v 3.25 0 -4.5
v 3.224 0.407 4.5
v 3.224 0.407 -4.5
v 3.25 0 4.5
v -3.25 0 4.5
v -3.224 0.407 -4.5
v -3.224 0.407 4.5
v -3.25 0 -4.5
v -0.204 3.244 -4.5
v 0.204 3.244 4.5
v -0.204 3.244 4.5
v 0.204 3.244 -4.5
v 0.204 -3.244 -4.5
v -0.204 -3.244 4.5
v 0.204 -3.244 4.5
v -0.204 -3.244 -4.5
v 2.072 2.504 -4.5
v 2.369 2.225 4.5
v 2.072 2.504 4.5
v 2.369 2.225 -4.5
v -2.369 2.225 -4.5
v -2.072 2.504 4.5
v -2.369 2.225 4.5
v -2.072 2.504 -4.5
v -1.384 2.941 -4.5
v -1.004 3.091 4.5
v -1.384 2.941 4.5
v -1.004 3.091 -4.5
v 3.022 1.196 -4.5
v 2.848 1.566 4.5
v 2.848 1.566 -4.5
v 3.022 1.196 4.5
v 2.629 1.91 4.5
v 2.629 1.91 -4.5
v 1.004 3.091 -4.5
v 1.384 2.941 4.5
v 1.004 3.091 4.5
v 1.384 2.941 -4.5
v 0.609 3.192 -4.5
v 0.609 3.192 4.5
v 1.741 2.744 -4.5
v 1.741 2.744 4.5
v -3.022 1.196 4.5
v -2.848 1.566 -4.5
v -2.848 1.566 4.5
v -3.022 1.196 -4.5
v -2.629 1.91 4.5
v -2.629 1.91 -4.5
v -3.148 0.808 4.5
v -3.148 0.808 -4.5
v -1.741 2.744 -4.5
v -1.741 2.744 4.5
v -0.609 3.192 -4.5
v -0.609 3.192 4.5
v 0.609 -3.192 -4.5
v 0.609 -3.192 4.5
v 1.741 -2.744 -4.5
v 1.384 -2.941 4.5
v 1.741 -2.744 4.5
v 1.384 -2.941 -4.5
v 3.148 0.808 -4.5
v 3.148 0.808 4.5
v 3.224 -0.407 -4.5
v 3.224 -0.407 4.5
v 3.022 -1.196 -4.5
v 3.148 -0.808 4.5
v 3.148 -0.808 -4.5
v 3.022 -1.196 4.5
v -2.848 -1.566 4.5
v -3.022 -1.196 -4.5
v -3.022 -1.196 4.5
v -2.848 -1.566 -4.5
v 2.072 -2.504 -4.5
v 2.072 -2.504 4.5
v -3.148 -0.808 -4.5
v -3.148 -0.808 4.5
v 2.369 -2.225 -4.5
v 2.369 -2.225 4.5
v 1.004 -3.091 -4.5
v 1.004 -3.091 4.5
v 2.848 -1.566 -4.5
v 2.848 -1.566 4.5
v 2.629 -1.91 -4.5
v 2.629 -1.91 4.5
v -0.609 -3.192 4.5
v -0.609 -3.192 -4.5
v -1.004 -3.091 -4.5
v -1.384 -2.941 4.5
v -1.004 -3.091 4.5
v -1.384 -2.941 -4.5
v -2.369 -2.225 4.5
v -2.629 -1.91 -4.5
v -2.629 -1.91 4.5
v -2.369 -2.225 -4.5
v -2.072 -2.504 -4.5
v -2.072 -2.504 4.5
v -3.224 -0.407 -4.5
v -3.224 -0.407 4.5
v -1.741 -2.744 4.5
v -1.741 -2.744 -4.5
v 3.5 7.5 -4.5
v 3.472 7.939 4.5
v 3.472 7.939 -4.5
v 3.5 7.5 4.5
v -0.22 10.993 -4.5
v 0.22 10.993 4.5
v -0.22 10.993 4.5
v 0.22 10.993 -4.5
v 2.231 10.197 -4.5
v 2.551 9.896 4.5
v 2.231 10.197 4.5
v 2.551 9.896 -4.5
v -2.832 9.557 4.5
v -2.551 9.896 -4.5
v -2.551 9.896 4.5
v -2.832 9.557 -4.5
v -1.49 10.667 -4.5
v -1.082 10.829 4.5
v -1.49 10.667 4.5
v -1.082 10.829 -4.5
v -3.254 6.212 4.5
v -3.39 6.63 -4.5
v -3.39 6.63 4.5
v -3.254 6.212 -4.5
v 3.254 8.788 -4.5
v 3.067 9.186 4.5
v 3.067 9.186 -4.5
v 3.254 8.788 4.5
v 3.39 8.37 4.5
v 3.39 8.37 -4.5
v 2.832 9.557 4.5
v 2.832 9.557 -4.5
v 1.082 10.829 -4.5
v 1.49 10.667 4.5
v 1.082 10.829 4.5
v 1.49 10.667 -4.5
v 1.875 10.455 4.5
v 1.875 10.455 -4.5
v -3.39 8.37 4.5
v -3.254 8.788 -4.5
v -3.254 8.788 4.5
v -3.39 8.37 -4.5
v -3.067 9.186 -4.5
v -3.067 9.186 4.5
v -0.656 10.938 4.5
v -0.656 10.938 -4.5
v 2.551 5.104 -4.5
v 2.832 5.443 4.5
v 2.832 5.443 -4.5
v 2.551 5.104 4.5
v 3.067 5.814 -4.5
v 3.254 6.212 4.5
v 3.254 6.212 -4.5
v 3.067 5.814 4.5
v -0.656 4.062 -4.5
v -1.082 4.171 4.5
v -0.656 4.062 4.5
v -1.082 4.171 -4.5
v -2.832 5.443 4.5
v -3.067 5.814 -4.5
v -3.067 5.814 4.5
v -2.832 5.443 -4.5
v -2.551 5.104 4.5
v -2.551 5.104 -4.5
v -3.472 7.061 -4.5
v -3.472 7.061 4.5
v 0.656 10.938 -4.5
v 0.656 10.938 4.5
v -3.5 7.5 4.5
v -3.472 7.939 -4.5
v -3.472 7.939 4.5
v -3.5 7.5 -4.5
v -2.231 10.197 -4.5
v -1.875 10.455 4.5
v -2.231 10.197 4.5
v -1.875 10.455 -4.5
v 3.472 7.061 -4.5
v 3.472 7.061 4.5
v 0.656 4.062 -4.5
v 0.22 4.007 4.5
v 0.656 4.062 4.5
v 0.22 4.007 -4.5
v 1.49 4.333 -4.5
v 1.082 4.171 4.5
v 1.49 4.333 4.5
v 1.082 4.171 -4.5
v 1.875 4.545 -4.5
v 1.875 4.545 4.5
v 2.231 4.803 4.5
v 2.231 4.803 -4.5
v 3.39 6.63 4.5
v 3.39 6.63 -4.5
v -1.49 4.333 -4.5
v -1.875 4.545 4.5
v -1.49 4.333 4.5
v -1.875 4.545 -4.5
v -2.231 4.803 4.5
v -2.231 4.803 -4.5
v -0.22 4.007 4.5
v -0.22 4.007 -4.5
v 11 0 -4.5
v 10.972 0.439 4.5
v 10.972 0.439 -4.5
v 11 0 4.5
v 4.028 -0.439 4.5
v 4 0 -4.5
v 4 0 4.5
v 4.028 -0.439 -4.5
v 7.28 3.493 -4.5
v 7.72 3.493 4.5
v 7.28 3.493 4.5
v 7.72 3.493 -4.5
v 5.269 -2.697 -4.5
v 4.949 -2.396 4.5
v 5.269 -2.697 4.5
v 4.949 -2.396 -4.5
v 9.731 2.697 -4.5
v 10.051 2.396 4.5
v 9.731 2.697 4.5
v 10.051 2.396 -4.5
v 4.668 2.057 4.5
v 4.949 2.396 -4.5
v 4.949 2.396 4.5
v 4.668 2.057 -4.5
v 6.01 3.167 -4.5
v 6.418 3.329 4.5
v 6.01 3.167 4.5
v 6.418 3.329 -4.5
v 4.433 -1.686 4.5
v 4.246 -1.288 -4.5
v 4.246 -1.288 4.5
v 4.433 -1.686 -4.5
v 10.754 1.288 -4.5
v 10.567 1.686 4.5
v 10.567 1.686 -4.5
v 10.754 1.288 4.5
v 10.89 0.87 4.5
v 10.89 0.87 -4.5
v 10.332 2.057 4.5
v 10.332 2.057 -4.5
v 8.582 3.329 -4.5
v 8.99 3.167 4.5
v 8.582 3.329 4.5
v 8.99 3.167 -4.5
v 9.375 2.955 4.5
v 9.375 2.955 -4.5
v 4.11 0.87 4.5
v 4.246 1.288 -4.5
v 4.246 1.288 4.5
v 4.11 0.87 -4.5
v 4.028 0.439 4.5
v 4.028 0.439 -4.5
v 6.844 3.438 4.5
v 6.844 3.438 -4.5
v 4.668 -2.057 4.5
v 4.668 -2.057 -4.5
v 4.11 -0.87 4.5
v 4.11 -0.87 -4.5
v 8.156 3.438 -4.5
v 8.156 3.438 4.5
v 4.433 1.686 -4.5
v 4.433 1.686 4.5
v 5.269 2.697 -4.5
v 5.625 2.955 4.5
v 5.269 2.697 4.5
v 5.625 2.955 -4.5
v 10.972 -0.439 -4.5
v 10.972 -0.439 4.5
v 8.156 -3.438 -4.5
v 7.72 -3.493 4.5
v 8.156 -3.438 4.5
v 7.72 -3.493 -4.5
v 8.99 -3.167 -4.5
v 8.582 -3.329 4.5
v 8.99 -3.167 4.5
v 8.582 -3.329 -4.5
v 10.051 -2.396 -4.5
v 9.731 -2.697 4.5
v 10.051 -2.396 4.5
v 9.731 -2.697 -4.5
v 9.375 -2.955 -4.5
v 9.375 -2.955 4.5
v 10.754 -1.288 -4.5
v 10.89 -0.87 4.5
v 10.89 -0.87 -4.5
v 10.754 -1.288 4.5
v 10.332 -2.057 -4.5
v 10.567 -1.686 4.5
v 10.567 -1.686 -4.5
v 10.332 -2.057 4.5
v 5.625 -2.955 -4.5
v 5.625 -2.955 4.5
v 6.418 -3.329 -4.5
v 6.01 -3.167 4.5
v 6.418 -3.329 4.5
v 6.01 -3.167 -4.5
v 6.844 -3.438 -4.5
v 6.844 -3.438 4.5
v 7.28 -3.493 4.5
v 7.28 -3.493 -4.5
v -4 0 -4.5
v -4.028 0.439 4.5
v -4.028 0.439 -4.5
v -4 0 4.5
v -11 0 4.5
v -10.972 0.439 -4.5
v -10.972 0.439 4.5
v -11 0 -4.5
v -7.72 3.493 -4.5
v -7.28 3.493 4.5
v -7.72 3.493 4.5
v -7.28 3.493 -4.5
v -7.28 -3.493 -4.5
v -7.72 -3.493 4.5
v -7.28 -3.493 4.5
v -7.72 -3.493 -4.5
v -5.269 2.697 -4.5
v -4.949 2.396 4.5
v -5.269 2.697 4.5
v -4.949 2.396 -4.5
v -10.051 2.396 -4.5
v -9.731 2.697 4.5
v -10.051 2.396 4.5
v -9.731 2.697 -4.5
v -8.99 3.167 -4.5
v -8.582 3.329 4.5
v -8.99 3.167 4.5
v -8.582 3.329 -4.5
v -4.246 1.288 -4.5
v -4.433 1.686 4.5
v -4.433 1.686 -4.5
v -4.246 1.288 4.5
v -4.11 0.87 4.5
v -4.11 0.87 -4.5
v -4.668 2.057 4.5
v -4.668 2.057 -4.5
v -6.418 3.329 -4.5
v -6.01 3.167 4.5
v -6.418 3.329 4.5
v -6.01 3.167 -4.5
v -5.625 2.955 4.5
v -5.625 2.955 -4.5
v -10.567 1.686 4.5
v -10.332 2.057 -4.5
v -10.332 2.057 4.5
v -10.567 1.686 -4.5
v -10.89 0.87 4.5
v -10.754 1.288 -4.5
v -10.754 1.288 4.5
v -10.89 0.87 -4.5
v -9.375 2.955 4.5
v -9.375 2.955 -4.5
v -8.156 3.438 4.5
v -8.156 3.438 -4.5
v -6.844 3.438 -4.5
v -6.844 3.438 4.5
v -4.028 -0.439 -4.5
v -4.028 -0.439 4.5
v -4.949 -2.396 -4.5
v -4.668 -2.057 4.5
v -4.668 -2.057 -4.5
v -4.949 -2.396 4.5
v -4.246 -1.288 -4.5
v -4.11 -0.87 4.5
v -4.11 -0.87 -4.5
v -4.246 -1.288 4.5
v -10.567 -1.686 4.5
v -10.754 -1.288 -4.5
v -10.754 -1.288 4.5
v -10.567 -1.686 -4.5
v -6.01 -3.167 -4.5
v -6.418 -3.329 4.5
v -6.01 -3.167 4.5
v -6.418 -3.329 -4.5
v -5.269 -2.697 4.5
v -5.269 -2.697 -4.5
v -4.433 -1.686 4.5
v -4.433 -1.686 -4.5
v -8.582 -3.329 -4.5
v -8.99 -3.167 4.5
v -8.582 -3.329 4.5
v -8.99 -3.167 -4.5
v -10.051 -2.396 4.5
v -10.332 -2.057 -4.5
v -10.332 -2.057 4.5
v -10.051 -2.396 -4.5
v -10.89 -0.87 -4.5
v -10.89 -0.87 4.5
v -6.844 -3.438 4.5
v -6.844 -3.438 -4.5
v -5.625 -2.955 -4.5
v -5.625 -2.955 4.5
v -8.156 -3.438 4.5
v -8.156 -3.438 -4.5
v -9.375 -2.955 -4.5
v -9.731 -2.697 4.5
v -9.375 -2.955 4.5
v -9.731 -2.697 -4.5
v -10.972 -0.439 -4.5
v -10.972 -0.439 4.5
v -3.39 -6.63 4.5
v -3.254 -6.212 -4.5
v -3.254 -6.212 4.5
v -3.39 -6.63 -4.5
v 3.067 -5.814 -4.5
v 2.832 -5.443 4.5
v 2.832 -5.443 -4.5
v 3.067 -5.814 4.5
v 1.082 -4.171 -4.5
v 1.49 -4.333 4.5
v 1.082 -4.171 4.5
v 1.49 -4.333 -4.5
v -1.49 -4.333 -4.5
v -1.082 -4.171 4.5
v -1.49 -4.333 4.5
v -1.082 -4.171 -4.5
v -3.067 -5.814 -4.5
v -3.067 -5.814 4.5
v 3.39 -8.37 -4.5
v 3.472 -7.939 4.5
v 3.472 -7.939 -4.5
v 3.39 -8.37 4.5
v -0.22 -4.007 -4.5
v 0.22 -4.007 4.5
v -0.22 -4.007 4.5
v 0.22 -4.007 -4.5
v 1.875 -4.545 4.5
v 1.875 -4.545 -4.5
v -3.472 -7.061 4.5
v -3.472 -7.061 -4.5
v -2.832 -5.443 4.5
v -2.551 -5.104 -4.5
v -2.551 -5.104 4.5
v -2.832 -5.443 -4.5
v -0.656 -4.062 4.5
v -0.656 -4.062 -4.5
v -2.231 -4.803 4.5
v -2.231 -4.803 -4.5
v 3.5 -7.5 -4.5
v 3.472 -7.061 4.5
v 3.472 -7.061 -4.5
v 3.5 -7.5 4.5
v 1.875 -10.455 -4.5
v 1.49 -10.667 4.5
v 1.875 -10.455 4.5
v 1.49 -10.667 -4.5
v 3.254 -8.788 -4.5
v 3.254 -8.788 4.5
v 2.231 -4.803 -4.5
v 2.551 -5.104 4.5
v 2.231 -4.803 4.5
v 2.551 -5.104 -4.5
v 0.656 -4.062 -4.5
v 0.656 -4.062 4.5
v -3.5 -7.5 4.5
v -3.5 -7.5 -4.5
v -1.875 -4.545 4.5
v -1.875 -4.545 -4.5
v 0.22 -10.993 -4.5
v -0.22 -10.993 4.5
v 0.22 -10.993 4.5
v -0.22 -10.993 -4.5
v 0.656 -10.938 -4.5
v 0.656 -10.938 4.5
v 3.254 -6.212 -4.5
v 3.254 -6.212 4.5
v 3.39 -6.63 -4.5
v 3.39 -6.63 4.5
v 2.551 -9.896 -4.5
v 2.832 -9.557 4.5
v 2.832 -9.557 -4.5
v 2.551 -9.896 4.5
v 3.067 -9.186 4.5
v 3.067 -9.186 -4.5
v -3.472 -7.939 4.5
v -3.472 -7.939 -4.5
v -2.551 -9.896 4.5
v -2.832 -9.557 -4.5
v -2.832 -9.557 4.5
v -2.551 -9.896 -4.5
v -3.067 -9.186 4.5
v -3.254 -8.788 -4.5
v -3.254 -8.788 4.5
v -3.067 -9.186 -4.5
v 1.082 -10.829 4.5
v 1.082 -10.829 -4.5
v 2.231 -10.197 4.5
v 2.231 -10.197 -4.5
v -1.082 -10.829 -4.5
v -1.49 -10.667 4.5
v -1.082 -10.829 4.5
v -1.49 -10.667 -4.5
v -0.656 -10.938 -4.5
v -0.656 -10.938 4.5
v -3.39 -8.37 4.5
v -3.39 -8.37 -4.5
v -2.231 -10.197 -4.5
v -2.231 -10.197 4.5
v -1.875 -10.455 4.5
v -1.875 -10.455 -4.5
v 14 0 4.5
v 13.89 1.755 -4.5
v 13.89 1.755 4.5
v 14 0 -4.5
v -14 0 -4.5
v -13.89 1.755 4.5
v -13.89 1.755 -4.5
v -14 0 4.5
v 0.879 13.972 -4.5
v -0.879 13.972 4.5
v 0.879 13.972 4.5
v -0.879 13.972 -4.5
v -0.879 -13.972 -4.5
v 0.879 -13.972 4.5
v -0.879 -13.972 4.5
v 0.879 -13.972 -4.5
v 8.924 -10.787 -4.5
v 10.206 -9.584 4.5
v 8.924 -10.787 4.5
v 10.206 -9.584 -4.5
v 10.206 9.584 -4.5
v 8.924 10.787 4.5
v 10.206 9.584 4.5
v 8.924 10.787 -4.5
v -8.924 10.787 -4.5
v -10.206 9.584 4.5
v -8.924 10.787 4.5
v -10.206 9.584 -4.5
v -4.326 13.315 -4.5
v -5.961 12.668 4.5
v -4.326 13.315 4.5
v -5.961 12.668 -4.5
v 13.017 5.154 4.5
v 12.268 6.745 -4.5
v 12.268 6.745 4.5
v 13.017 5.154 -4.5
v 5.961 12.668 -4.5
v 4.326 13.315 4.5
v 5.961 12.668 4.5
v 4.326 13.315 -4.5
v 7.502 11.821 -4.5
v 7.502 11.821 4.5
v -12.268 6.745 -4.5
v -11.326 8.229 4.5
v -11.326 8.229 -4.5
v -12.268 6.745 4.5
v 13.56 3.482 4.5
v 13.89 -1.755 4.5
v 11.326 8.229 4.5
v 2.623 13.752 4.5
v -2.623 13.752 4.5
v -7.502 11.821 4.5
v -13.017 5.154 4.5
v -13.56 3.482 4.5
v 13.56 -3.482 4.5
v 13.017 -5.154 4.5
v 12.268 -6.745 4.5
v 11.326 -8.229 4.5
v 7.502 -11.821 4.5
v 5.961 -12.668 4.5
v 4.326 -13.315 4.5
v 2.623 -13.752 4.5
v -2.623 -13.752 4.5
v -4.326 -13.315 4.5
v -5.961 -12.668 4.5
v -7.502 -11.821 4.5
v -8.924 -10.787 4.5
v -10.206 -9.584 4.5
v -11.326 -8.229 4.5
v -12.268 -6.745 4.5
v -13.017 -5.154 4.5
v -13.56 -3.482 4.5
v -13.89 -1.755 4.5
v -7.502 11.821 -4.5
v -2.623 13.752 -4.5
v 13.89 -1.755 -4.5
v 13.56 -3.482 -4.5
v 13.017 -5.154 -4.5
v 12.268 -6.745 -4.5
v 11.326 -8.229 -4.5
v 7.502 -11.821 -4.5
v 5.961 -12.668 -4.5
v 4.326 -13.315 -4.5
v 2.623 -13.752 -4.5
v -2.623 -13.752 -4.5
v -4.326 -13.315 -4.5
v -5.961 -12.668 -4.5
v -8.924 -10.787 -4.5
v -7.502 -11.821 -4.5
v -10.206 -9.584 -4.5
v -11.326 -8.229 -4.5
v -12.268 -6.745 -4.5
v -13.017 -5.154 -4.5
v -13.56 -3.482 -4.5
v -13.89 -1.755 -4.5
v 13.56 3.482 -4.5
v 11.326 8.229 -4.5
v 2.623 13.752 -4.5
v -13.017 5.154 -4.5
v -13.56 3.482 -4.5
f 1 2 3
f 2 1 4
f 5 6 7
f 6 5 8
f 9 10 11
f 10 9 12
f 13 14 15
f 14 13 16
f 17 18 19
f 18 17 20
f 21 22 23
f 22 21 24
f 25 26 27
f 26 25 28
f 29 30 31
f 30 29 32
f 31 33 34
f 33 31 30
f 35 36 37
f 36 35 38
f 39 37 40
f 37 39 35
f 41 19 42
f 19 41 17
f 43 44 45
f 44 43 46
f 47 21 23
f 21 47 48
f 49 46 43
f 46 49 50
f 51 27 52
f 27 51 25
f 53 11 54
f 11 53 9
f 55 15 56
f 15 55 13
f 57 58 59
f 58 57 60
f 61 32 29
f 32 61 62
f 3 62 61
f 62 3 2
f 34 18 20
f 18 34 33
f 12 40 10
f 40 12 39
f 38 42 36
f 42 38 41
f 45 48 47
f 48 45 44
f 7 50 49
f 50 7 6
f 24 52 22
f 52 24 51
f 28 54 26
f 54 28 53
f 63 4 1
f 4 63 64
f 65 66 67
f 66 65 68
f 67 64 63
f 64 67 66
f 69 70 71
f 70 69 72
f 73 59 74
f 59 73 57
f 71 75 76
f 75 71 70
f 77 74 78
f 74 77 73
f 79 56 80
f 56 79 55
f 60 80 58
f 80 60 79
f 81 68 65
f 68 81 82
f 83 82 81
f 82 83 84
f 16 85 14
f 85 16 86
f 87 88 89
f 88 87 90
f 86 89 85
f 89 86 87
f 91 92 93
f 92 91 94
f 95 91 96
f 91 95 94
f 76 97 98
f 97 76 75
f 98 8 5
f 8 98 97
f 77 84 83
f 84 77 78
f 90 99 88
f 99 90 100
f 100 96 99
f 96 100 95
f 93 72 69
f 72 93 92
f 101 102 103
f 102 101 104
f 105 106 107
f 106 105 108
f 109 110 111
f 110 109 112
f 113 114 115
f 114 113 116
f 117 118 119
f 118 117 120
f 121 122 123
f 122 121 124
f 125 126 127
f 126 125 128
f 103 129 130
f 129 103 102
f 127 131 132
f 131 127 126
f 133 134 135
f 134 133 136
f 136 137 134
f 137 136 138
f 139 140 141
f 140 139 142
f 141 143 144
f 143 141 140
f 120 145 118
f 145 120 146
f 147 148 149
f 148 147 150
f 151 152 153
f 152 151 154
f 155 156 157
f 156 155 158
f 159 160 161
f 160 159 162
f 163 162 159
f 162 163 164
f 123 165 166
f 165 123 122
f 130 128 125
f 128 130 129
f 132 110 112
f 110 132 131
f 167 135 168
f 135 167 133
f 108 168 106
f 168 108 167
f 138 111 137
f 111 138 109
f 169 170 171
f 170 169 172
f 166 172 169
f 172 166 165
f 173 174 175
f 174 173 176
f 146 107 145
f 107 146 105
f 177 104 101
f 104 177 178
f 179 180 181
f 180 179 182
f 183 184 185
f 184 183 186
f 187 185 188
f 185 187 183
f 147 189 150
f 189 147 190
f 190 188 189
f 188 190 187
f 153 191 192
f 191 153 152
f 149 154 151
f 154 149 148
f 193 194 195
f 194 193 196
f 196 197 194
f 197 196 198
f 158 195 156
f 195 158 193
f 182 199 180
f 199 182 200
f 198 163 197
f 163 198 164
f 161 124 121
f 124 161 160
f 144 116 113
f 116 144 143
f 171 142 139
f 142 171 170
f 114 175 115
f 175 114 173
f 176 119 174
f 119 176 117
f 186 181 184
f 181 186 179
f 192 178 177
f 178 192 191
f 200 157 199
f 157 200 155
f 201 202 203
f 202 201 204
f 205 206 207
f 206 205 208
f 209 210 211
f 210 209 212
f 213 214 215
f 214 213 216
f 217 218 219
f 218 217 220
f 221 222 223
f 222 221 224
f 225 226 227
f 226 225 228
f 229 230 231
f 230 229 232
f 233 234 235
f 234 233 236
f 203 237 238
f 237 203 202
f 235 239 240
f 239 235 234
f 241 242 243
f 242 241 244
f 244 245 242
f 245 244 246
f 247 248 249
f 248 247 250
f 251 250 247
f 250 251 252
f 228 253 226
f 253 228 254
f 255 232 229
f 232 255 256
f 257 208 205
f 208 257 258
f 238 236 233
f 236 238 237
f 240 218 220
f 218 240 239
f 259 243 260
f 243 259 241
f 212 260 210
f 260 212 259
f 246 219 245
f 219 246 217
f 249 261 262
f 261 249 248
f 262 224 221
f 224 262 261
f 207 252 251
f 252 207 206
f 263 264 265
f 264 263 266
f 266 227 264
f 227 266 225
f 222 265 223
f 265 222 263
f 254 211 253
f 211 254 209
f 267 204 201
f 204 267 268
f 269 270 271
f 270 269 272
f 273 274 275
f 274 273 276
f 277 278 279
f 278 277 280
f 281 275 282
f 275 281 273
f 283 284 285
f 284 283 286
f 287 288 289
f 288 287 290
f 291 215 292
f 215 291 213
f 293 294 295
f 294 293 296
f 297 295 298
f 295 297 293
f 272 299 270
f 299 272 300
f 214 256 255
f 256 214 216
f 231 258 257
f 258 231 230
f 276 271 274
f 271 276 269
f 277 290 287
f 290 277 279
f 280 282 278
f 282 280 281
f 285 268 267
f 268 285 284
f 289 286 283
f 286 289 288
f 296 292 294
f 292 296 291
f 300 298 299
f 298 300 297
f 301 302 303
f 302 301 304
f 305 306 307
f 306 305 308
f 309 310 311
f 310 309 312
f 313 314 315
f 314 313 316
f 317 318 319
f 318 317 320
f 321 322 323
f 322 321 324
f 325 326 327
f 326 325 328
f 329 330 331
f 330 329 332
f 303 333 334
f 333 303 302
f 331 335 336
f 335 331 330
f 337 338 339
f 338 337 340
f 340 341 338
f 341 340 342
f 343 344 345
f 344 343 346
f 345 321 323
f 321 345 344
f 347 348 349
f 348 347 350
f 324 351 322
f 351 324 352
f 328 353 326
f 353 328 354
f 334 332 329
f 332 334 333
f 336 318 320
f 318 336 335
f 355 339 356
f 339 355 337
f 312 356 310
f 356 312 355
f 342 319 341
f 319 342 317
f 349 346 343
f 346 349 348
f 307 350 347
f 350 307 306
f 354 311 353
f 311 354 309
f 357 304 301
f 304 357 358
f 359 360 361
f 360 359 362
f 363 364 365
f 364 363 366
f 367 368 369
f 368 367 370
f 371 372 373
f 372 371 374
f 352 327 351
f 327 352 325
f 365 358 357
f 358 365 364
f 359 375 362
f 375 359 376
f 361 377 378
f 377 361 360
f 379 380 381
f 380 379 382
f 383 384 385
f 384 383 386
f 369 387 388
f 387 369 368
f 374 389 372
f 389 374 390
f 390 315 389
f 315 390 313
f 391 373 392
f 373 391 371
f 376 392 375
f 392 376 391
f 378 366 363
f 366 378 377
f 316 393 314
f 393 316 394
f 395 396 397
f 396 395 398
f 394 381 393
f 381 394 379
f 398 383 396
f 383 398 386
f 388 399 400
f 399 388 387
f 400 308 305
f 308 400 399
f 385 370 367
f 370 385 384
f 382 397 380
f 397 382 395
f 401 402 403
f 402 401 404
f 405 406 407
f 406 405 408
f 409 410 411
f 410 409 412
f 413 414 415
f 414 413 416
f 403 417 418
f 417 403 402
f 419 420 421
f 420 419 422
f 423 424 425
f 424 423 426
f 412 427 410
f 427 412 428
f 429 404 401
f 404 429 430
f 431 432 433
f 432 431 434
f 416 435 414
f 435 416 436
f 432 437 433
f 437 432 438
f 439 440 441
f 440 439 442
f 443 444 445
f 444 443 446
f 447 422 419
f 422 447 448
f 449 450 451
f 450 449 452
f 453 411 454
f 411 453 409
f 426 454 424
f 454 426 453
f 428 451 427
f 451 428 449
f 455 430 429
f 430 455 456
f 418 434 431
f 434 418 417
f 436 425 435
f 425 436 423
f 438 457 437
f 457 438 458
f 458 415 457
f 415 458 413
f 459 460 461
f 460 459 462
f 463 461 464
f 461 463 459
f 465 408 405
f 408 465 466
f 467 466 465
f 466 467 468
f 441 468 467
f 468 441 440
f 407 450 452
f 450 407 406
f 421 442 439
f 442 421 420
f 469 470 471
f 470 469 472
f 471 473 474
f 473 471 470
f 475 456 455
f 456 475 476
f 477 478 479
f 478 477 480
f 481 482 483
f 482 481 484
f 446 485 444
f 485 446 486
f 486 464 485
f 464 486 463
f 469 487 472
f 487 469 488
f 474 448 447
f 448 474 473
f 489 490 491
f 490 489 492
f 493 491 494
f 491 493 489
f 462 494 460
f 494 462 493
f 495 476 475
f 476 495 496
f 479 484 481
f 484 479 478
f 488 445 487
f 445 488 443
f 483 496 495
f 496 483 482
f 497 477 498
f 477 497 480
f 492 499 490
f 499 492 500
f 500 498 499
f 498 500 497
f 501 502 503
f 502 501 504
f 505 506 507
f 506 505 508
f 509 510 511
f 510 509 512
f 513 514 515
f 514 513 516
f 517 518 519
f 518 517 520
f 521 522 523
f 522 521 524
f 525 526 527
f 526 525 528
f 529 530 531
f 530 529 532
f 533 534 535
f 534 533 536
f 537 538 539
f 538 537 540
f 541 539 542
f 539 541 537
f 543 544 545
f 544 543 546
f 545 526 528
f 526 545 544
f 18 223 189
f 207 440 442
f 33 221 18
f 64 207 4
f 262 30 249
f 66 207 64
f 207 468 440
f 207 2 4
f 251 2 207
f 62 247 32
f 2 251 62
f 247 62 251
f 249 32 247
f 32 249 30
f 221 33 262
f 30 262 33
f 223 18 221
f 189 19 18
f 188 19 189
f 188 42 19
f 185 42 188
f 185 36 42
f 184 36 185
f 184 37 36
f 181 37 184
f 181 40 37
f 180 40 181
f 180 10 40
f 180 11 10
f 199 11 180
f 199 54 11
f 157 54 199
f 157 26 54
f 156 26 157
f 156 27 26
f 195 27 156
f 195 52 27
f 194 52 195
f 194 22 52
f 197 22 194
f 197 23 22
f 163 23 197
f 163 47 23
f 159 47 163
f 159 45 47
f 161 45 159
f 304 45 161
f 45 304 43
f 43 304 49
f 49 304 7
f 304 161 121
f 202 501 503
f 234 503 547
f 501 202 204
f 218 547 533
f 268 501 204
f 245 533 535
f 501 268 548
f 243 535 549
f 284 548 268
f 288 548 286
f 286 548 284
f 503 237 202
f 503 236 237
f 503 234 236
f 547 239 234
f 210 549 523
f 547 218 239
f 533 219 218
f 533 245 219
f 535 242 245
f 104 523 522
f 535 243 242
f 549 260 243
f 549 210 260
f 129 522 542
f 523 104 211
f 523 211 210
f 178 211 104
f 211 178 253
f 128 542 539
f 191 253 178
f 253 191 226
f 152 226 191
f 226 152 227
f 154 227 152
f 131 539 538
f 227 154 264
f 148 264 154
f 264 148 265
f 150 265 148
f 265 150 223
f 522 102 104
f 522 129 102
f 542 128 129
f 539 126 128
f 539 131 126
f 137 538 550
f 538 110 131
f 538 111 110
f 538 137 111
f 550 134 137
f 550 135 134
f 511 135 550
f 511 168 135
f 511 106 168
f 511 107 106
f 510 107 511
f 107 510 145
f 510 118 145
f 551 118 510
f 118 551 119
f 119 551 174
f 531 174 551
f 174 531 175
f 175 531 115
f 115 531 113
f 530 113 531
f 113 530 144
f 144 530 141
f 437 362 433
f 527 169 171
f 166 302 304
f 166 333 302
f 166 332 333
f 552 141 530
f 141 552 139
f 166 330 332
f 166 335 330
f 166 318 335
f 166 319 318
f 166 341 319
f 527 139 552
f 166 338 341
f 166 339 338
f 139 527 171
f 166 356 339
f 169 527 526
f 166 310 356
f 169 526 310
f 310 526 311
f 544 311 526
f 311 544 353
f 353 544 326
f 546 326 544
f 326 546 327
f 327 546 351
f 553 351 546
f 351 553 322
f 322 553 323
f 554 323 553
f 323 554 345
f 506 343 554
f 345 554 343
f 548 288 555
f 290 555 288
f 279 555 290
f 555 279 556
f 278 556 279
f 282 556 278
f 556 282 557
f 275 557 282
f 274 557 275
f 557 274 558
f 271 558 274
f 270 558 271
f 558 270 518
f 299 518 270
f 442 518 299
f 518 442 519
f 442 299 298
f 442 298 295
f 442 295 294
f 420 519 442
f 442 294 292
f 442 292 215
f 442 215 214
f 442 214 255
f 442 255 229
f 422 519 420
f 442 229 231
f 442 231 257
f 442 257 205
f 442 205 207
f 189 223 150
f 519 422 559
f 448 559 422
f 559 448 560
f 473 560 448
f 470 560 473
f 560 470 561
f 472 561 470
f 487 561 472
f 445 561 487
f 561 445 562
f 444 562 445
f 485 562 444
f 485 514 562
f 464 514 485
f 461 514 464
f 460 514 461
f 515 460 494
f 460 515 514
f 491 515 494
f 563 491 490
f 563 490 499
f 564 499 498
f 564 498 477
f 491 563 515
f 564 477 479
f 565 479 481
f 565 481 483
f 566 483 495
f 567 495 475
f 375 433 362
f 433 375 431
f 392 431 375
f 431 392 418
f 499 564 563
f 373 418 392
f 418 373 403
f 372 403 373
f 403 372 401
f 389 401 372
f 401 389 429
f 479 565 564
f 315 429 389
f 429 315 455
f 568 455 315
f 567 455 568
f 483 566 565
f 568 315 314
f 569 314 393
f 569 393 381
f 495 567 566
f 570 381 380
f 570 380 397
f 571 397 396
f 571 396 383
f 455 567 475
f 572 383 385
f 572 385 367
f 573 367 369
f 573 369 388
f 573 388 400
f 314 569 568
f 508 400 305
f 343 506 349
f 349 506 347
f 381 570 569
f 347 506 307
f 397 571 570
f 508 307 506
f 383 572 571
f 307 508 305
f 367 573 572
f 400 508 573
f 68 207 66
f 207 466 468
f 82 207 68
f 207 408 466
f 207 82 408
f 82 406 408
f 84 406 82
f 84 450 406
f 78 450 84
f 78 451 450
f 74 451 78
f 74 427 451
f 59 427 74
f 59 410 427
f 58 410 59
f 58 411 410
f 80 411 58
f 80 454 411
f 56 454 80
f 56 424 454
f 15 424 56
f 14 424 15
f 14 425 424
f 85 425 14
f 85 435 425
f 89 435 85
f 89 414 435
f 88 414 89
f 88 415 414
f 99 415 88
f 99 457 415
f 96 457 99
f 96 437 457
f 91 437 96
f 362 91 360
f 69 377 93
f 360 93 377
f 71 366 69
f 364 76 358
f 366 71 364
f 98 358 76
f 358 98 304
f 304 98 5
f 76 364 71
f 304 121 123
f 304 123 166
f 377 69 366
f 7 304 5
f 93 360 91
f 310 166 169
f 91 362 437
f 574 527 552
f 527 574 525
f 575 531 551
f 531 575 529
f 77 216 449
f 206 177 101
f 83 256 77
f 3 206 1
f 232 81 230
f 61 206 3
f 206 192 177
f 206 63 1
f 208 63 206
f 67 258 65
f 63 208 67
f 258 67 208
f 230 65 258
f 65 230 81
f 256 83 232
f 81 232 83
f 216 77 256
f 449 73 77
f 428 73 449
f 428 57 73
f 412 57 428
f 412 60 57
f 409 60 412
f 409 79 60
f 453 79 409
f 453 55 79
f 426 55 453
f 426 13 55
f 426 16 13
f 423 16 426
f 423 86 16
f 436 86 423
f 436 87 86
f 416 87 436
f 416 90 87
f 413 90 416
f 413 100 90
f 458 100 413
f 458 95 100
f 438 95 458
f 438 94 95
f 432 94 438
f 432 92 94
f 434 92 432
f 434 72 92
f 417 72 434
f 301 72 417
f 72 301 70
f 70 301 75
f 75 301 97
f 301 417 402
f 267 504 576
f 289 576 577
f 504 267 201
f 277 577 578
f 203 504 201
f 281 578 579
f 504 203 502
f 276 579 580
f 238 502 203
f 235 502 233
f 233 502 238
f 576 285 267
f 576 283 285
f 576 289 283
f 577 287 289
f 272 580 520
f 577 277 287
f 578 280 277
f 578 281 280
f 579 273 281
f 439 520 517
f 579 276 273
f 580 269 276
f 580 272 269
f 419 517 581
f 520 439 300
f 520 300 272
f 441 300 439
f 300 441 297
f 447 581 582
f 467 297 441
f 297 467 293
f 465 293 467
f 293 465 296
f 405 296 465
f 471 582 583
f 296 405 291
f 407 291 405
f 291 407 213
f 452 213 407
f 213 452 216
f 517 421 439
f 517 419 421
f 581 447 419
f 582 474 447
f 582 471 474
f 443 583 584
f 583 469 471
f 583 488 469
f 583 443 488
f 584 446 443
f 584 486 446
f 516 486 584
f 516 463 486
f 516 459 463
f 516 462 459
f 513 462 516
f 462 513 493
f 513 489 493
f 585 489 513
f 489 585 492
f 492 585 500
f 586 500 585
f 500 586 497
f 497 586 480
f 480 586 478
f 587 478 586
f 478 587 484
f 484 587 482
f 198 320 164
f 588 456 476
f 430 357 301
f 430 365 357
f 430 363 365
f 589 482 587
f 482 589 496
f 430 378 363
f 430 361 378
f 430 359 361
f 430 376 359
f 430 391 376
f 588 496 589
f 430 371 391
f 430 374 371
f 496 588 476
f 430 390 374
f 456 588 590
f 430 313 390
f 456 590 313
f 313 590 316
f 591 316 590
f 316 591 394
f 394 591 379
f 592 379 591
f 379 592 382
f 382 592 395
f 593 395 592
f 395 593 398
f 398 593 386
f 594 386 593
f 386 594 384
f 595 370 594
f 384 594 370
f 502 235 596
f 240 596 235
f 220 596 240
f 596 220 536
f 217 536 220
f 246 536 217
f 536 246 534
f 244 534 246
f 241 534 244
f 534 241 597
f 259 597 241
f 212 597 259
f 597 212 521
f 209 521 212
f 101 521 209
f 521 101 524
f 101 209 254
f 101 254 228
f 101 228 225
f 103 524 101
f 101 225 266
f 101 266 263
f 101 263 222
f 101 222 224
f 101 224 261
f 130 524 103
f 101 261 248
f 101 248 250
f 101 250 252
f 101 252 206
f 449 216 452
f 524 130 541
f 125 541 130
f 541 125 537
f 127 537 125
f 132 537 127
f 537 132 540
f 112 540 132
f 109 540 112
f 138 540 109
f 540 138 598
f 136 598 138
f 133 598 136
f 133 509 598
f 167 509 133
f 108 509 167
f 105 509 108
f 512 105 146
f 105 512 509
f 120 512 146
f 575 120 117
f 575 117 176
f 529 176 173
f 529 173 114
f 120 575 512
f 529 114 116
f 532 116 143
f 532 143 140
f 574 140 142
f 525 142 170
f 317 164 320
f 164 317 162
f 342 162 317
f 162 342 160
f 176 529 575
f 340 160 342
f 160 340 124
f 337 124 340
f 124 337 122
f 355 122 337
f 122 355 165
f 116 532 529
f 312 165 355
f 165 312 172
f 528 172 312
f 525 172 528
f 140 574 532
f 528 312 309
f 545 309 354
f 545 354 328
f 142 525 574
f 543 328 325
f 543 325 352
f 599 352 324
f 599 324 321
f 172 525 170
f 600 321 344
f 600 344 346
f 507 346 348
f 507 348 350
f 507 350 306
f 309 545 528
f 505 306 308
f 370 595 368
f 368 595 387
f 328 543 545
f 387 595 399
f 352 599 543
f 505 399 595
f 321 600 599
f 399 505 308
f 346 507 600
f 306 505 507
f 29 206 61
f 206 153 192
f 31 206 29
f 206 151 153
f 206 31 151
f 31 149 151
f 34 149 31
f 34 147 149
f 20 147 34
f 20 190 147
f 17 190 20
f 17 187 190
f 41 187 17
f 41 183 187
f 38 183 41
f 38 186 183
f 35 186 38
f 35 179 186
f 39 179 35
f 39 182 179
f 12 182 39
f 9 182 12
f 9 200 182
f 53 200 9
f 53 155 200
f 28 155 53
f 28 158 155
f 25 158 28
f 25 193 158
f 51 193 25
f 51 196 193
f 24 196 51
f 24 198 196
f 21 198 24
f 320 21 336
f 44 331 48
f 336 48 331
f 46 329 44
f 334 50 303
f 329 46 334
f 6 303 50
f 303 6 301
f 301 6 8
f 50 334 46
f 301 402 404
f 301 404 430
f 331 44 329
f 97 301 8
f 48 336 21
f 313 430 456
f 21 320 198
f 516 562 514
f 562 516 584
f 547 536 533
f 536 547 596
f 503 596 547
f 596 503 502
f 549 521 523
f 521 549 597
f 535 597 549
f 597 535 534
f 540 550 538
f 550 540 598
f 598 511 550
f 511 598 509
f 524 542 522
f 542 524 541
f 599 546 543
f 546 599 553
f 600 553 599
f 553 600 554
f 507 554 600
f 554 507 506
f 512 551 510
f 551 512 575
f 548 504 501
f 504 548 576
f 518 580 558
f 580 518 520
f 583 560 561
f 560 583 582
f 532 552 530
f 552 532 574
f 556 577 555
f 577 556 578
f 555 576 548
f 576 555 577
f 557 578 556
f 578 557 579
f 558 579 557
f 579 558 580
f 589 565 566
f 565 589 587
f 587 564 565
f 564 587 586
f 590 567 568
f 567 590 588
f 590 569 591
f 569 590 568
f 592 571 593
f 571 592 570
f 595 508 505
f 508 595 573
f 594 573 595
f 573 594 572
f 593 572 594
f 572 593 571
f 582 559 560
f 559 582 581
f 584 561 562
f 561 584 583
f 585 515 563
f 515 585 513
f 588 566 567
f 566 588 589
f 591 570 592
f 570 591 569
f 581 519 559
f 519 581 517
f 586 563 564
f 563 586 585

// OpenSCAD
$fn = 50;


difference() {
	union() {
		translate(v = [0, 0, -4.5000000000]) {
			rotate(a = [0, 0, 0]) {
				cylinder(h = 9, r = 14.0000000000);
			}
		}
	}
	union() {
		translate(v = [0.0000000000, 0.0000000000, -125.0000000000]) {
			rotate(a = [0, 0, 0]) {
				cylinder(h = 250, r = 3.2500000000);
			}
		}
		translate(v = [0, 0, -125.0000000000]) {
			rotate(a = [0, 0, 0]) {
				cylinder(h = 250, r = 3.2500000000);
			}
		}
		translate(v = [0, 7.5000000000, -125.0000000000]) {
			rotate(a = [0, 0, 0]) {
				cylinder(h = 250, r = 3.5000000000);
			}
		}
		translate(v = [7.5000000000, 0, -125.0000000000]) {
			rotate(a = [0, 0, 0]) {
				cylinder(h = 250, r = 3.5000000000);
			}
		}
		translate(v = [-7.5000000000, 0, -125.0000000000]) {
			rotate(a = [0, 0, 0]) {
				cylinder(h = 250, r = 3.5000000000);
			}
		}
		translate(v = [0, -7.5000000000, -125.0000000000]) {
			rotate(a = [0, 0, 0]) {
				cylinder(h = 250, r = 3.5000000000);
			}
		}
	}
}
